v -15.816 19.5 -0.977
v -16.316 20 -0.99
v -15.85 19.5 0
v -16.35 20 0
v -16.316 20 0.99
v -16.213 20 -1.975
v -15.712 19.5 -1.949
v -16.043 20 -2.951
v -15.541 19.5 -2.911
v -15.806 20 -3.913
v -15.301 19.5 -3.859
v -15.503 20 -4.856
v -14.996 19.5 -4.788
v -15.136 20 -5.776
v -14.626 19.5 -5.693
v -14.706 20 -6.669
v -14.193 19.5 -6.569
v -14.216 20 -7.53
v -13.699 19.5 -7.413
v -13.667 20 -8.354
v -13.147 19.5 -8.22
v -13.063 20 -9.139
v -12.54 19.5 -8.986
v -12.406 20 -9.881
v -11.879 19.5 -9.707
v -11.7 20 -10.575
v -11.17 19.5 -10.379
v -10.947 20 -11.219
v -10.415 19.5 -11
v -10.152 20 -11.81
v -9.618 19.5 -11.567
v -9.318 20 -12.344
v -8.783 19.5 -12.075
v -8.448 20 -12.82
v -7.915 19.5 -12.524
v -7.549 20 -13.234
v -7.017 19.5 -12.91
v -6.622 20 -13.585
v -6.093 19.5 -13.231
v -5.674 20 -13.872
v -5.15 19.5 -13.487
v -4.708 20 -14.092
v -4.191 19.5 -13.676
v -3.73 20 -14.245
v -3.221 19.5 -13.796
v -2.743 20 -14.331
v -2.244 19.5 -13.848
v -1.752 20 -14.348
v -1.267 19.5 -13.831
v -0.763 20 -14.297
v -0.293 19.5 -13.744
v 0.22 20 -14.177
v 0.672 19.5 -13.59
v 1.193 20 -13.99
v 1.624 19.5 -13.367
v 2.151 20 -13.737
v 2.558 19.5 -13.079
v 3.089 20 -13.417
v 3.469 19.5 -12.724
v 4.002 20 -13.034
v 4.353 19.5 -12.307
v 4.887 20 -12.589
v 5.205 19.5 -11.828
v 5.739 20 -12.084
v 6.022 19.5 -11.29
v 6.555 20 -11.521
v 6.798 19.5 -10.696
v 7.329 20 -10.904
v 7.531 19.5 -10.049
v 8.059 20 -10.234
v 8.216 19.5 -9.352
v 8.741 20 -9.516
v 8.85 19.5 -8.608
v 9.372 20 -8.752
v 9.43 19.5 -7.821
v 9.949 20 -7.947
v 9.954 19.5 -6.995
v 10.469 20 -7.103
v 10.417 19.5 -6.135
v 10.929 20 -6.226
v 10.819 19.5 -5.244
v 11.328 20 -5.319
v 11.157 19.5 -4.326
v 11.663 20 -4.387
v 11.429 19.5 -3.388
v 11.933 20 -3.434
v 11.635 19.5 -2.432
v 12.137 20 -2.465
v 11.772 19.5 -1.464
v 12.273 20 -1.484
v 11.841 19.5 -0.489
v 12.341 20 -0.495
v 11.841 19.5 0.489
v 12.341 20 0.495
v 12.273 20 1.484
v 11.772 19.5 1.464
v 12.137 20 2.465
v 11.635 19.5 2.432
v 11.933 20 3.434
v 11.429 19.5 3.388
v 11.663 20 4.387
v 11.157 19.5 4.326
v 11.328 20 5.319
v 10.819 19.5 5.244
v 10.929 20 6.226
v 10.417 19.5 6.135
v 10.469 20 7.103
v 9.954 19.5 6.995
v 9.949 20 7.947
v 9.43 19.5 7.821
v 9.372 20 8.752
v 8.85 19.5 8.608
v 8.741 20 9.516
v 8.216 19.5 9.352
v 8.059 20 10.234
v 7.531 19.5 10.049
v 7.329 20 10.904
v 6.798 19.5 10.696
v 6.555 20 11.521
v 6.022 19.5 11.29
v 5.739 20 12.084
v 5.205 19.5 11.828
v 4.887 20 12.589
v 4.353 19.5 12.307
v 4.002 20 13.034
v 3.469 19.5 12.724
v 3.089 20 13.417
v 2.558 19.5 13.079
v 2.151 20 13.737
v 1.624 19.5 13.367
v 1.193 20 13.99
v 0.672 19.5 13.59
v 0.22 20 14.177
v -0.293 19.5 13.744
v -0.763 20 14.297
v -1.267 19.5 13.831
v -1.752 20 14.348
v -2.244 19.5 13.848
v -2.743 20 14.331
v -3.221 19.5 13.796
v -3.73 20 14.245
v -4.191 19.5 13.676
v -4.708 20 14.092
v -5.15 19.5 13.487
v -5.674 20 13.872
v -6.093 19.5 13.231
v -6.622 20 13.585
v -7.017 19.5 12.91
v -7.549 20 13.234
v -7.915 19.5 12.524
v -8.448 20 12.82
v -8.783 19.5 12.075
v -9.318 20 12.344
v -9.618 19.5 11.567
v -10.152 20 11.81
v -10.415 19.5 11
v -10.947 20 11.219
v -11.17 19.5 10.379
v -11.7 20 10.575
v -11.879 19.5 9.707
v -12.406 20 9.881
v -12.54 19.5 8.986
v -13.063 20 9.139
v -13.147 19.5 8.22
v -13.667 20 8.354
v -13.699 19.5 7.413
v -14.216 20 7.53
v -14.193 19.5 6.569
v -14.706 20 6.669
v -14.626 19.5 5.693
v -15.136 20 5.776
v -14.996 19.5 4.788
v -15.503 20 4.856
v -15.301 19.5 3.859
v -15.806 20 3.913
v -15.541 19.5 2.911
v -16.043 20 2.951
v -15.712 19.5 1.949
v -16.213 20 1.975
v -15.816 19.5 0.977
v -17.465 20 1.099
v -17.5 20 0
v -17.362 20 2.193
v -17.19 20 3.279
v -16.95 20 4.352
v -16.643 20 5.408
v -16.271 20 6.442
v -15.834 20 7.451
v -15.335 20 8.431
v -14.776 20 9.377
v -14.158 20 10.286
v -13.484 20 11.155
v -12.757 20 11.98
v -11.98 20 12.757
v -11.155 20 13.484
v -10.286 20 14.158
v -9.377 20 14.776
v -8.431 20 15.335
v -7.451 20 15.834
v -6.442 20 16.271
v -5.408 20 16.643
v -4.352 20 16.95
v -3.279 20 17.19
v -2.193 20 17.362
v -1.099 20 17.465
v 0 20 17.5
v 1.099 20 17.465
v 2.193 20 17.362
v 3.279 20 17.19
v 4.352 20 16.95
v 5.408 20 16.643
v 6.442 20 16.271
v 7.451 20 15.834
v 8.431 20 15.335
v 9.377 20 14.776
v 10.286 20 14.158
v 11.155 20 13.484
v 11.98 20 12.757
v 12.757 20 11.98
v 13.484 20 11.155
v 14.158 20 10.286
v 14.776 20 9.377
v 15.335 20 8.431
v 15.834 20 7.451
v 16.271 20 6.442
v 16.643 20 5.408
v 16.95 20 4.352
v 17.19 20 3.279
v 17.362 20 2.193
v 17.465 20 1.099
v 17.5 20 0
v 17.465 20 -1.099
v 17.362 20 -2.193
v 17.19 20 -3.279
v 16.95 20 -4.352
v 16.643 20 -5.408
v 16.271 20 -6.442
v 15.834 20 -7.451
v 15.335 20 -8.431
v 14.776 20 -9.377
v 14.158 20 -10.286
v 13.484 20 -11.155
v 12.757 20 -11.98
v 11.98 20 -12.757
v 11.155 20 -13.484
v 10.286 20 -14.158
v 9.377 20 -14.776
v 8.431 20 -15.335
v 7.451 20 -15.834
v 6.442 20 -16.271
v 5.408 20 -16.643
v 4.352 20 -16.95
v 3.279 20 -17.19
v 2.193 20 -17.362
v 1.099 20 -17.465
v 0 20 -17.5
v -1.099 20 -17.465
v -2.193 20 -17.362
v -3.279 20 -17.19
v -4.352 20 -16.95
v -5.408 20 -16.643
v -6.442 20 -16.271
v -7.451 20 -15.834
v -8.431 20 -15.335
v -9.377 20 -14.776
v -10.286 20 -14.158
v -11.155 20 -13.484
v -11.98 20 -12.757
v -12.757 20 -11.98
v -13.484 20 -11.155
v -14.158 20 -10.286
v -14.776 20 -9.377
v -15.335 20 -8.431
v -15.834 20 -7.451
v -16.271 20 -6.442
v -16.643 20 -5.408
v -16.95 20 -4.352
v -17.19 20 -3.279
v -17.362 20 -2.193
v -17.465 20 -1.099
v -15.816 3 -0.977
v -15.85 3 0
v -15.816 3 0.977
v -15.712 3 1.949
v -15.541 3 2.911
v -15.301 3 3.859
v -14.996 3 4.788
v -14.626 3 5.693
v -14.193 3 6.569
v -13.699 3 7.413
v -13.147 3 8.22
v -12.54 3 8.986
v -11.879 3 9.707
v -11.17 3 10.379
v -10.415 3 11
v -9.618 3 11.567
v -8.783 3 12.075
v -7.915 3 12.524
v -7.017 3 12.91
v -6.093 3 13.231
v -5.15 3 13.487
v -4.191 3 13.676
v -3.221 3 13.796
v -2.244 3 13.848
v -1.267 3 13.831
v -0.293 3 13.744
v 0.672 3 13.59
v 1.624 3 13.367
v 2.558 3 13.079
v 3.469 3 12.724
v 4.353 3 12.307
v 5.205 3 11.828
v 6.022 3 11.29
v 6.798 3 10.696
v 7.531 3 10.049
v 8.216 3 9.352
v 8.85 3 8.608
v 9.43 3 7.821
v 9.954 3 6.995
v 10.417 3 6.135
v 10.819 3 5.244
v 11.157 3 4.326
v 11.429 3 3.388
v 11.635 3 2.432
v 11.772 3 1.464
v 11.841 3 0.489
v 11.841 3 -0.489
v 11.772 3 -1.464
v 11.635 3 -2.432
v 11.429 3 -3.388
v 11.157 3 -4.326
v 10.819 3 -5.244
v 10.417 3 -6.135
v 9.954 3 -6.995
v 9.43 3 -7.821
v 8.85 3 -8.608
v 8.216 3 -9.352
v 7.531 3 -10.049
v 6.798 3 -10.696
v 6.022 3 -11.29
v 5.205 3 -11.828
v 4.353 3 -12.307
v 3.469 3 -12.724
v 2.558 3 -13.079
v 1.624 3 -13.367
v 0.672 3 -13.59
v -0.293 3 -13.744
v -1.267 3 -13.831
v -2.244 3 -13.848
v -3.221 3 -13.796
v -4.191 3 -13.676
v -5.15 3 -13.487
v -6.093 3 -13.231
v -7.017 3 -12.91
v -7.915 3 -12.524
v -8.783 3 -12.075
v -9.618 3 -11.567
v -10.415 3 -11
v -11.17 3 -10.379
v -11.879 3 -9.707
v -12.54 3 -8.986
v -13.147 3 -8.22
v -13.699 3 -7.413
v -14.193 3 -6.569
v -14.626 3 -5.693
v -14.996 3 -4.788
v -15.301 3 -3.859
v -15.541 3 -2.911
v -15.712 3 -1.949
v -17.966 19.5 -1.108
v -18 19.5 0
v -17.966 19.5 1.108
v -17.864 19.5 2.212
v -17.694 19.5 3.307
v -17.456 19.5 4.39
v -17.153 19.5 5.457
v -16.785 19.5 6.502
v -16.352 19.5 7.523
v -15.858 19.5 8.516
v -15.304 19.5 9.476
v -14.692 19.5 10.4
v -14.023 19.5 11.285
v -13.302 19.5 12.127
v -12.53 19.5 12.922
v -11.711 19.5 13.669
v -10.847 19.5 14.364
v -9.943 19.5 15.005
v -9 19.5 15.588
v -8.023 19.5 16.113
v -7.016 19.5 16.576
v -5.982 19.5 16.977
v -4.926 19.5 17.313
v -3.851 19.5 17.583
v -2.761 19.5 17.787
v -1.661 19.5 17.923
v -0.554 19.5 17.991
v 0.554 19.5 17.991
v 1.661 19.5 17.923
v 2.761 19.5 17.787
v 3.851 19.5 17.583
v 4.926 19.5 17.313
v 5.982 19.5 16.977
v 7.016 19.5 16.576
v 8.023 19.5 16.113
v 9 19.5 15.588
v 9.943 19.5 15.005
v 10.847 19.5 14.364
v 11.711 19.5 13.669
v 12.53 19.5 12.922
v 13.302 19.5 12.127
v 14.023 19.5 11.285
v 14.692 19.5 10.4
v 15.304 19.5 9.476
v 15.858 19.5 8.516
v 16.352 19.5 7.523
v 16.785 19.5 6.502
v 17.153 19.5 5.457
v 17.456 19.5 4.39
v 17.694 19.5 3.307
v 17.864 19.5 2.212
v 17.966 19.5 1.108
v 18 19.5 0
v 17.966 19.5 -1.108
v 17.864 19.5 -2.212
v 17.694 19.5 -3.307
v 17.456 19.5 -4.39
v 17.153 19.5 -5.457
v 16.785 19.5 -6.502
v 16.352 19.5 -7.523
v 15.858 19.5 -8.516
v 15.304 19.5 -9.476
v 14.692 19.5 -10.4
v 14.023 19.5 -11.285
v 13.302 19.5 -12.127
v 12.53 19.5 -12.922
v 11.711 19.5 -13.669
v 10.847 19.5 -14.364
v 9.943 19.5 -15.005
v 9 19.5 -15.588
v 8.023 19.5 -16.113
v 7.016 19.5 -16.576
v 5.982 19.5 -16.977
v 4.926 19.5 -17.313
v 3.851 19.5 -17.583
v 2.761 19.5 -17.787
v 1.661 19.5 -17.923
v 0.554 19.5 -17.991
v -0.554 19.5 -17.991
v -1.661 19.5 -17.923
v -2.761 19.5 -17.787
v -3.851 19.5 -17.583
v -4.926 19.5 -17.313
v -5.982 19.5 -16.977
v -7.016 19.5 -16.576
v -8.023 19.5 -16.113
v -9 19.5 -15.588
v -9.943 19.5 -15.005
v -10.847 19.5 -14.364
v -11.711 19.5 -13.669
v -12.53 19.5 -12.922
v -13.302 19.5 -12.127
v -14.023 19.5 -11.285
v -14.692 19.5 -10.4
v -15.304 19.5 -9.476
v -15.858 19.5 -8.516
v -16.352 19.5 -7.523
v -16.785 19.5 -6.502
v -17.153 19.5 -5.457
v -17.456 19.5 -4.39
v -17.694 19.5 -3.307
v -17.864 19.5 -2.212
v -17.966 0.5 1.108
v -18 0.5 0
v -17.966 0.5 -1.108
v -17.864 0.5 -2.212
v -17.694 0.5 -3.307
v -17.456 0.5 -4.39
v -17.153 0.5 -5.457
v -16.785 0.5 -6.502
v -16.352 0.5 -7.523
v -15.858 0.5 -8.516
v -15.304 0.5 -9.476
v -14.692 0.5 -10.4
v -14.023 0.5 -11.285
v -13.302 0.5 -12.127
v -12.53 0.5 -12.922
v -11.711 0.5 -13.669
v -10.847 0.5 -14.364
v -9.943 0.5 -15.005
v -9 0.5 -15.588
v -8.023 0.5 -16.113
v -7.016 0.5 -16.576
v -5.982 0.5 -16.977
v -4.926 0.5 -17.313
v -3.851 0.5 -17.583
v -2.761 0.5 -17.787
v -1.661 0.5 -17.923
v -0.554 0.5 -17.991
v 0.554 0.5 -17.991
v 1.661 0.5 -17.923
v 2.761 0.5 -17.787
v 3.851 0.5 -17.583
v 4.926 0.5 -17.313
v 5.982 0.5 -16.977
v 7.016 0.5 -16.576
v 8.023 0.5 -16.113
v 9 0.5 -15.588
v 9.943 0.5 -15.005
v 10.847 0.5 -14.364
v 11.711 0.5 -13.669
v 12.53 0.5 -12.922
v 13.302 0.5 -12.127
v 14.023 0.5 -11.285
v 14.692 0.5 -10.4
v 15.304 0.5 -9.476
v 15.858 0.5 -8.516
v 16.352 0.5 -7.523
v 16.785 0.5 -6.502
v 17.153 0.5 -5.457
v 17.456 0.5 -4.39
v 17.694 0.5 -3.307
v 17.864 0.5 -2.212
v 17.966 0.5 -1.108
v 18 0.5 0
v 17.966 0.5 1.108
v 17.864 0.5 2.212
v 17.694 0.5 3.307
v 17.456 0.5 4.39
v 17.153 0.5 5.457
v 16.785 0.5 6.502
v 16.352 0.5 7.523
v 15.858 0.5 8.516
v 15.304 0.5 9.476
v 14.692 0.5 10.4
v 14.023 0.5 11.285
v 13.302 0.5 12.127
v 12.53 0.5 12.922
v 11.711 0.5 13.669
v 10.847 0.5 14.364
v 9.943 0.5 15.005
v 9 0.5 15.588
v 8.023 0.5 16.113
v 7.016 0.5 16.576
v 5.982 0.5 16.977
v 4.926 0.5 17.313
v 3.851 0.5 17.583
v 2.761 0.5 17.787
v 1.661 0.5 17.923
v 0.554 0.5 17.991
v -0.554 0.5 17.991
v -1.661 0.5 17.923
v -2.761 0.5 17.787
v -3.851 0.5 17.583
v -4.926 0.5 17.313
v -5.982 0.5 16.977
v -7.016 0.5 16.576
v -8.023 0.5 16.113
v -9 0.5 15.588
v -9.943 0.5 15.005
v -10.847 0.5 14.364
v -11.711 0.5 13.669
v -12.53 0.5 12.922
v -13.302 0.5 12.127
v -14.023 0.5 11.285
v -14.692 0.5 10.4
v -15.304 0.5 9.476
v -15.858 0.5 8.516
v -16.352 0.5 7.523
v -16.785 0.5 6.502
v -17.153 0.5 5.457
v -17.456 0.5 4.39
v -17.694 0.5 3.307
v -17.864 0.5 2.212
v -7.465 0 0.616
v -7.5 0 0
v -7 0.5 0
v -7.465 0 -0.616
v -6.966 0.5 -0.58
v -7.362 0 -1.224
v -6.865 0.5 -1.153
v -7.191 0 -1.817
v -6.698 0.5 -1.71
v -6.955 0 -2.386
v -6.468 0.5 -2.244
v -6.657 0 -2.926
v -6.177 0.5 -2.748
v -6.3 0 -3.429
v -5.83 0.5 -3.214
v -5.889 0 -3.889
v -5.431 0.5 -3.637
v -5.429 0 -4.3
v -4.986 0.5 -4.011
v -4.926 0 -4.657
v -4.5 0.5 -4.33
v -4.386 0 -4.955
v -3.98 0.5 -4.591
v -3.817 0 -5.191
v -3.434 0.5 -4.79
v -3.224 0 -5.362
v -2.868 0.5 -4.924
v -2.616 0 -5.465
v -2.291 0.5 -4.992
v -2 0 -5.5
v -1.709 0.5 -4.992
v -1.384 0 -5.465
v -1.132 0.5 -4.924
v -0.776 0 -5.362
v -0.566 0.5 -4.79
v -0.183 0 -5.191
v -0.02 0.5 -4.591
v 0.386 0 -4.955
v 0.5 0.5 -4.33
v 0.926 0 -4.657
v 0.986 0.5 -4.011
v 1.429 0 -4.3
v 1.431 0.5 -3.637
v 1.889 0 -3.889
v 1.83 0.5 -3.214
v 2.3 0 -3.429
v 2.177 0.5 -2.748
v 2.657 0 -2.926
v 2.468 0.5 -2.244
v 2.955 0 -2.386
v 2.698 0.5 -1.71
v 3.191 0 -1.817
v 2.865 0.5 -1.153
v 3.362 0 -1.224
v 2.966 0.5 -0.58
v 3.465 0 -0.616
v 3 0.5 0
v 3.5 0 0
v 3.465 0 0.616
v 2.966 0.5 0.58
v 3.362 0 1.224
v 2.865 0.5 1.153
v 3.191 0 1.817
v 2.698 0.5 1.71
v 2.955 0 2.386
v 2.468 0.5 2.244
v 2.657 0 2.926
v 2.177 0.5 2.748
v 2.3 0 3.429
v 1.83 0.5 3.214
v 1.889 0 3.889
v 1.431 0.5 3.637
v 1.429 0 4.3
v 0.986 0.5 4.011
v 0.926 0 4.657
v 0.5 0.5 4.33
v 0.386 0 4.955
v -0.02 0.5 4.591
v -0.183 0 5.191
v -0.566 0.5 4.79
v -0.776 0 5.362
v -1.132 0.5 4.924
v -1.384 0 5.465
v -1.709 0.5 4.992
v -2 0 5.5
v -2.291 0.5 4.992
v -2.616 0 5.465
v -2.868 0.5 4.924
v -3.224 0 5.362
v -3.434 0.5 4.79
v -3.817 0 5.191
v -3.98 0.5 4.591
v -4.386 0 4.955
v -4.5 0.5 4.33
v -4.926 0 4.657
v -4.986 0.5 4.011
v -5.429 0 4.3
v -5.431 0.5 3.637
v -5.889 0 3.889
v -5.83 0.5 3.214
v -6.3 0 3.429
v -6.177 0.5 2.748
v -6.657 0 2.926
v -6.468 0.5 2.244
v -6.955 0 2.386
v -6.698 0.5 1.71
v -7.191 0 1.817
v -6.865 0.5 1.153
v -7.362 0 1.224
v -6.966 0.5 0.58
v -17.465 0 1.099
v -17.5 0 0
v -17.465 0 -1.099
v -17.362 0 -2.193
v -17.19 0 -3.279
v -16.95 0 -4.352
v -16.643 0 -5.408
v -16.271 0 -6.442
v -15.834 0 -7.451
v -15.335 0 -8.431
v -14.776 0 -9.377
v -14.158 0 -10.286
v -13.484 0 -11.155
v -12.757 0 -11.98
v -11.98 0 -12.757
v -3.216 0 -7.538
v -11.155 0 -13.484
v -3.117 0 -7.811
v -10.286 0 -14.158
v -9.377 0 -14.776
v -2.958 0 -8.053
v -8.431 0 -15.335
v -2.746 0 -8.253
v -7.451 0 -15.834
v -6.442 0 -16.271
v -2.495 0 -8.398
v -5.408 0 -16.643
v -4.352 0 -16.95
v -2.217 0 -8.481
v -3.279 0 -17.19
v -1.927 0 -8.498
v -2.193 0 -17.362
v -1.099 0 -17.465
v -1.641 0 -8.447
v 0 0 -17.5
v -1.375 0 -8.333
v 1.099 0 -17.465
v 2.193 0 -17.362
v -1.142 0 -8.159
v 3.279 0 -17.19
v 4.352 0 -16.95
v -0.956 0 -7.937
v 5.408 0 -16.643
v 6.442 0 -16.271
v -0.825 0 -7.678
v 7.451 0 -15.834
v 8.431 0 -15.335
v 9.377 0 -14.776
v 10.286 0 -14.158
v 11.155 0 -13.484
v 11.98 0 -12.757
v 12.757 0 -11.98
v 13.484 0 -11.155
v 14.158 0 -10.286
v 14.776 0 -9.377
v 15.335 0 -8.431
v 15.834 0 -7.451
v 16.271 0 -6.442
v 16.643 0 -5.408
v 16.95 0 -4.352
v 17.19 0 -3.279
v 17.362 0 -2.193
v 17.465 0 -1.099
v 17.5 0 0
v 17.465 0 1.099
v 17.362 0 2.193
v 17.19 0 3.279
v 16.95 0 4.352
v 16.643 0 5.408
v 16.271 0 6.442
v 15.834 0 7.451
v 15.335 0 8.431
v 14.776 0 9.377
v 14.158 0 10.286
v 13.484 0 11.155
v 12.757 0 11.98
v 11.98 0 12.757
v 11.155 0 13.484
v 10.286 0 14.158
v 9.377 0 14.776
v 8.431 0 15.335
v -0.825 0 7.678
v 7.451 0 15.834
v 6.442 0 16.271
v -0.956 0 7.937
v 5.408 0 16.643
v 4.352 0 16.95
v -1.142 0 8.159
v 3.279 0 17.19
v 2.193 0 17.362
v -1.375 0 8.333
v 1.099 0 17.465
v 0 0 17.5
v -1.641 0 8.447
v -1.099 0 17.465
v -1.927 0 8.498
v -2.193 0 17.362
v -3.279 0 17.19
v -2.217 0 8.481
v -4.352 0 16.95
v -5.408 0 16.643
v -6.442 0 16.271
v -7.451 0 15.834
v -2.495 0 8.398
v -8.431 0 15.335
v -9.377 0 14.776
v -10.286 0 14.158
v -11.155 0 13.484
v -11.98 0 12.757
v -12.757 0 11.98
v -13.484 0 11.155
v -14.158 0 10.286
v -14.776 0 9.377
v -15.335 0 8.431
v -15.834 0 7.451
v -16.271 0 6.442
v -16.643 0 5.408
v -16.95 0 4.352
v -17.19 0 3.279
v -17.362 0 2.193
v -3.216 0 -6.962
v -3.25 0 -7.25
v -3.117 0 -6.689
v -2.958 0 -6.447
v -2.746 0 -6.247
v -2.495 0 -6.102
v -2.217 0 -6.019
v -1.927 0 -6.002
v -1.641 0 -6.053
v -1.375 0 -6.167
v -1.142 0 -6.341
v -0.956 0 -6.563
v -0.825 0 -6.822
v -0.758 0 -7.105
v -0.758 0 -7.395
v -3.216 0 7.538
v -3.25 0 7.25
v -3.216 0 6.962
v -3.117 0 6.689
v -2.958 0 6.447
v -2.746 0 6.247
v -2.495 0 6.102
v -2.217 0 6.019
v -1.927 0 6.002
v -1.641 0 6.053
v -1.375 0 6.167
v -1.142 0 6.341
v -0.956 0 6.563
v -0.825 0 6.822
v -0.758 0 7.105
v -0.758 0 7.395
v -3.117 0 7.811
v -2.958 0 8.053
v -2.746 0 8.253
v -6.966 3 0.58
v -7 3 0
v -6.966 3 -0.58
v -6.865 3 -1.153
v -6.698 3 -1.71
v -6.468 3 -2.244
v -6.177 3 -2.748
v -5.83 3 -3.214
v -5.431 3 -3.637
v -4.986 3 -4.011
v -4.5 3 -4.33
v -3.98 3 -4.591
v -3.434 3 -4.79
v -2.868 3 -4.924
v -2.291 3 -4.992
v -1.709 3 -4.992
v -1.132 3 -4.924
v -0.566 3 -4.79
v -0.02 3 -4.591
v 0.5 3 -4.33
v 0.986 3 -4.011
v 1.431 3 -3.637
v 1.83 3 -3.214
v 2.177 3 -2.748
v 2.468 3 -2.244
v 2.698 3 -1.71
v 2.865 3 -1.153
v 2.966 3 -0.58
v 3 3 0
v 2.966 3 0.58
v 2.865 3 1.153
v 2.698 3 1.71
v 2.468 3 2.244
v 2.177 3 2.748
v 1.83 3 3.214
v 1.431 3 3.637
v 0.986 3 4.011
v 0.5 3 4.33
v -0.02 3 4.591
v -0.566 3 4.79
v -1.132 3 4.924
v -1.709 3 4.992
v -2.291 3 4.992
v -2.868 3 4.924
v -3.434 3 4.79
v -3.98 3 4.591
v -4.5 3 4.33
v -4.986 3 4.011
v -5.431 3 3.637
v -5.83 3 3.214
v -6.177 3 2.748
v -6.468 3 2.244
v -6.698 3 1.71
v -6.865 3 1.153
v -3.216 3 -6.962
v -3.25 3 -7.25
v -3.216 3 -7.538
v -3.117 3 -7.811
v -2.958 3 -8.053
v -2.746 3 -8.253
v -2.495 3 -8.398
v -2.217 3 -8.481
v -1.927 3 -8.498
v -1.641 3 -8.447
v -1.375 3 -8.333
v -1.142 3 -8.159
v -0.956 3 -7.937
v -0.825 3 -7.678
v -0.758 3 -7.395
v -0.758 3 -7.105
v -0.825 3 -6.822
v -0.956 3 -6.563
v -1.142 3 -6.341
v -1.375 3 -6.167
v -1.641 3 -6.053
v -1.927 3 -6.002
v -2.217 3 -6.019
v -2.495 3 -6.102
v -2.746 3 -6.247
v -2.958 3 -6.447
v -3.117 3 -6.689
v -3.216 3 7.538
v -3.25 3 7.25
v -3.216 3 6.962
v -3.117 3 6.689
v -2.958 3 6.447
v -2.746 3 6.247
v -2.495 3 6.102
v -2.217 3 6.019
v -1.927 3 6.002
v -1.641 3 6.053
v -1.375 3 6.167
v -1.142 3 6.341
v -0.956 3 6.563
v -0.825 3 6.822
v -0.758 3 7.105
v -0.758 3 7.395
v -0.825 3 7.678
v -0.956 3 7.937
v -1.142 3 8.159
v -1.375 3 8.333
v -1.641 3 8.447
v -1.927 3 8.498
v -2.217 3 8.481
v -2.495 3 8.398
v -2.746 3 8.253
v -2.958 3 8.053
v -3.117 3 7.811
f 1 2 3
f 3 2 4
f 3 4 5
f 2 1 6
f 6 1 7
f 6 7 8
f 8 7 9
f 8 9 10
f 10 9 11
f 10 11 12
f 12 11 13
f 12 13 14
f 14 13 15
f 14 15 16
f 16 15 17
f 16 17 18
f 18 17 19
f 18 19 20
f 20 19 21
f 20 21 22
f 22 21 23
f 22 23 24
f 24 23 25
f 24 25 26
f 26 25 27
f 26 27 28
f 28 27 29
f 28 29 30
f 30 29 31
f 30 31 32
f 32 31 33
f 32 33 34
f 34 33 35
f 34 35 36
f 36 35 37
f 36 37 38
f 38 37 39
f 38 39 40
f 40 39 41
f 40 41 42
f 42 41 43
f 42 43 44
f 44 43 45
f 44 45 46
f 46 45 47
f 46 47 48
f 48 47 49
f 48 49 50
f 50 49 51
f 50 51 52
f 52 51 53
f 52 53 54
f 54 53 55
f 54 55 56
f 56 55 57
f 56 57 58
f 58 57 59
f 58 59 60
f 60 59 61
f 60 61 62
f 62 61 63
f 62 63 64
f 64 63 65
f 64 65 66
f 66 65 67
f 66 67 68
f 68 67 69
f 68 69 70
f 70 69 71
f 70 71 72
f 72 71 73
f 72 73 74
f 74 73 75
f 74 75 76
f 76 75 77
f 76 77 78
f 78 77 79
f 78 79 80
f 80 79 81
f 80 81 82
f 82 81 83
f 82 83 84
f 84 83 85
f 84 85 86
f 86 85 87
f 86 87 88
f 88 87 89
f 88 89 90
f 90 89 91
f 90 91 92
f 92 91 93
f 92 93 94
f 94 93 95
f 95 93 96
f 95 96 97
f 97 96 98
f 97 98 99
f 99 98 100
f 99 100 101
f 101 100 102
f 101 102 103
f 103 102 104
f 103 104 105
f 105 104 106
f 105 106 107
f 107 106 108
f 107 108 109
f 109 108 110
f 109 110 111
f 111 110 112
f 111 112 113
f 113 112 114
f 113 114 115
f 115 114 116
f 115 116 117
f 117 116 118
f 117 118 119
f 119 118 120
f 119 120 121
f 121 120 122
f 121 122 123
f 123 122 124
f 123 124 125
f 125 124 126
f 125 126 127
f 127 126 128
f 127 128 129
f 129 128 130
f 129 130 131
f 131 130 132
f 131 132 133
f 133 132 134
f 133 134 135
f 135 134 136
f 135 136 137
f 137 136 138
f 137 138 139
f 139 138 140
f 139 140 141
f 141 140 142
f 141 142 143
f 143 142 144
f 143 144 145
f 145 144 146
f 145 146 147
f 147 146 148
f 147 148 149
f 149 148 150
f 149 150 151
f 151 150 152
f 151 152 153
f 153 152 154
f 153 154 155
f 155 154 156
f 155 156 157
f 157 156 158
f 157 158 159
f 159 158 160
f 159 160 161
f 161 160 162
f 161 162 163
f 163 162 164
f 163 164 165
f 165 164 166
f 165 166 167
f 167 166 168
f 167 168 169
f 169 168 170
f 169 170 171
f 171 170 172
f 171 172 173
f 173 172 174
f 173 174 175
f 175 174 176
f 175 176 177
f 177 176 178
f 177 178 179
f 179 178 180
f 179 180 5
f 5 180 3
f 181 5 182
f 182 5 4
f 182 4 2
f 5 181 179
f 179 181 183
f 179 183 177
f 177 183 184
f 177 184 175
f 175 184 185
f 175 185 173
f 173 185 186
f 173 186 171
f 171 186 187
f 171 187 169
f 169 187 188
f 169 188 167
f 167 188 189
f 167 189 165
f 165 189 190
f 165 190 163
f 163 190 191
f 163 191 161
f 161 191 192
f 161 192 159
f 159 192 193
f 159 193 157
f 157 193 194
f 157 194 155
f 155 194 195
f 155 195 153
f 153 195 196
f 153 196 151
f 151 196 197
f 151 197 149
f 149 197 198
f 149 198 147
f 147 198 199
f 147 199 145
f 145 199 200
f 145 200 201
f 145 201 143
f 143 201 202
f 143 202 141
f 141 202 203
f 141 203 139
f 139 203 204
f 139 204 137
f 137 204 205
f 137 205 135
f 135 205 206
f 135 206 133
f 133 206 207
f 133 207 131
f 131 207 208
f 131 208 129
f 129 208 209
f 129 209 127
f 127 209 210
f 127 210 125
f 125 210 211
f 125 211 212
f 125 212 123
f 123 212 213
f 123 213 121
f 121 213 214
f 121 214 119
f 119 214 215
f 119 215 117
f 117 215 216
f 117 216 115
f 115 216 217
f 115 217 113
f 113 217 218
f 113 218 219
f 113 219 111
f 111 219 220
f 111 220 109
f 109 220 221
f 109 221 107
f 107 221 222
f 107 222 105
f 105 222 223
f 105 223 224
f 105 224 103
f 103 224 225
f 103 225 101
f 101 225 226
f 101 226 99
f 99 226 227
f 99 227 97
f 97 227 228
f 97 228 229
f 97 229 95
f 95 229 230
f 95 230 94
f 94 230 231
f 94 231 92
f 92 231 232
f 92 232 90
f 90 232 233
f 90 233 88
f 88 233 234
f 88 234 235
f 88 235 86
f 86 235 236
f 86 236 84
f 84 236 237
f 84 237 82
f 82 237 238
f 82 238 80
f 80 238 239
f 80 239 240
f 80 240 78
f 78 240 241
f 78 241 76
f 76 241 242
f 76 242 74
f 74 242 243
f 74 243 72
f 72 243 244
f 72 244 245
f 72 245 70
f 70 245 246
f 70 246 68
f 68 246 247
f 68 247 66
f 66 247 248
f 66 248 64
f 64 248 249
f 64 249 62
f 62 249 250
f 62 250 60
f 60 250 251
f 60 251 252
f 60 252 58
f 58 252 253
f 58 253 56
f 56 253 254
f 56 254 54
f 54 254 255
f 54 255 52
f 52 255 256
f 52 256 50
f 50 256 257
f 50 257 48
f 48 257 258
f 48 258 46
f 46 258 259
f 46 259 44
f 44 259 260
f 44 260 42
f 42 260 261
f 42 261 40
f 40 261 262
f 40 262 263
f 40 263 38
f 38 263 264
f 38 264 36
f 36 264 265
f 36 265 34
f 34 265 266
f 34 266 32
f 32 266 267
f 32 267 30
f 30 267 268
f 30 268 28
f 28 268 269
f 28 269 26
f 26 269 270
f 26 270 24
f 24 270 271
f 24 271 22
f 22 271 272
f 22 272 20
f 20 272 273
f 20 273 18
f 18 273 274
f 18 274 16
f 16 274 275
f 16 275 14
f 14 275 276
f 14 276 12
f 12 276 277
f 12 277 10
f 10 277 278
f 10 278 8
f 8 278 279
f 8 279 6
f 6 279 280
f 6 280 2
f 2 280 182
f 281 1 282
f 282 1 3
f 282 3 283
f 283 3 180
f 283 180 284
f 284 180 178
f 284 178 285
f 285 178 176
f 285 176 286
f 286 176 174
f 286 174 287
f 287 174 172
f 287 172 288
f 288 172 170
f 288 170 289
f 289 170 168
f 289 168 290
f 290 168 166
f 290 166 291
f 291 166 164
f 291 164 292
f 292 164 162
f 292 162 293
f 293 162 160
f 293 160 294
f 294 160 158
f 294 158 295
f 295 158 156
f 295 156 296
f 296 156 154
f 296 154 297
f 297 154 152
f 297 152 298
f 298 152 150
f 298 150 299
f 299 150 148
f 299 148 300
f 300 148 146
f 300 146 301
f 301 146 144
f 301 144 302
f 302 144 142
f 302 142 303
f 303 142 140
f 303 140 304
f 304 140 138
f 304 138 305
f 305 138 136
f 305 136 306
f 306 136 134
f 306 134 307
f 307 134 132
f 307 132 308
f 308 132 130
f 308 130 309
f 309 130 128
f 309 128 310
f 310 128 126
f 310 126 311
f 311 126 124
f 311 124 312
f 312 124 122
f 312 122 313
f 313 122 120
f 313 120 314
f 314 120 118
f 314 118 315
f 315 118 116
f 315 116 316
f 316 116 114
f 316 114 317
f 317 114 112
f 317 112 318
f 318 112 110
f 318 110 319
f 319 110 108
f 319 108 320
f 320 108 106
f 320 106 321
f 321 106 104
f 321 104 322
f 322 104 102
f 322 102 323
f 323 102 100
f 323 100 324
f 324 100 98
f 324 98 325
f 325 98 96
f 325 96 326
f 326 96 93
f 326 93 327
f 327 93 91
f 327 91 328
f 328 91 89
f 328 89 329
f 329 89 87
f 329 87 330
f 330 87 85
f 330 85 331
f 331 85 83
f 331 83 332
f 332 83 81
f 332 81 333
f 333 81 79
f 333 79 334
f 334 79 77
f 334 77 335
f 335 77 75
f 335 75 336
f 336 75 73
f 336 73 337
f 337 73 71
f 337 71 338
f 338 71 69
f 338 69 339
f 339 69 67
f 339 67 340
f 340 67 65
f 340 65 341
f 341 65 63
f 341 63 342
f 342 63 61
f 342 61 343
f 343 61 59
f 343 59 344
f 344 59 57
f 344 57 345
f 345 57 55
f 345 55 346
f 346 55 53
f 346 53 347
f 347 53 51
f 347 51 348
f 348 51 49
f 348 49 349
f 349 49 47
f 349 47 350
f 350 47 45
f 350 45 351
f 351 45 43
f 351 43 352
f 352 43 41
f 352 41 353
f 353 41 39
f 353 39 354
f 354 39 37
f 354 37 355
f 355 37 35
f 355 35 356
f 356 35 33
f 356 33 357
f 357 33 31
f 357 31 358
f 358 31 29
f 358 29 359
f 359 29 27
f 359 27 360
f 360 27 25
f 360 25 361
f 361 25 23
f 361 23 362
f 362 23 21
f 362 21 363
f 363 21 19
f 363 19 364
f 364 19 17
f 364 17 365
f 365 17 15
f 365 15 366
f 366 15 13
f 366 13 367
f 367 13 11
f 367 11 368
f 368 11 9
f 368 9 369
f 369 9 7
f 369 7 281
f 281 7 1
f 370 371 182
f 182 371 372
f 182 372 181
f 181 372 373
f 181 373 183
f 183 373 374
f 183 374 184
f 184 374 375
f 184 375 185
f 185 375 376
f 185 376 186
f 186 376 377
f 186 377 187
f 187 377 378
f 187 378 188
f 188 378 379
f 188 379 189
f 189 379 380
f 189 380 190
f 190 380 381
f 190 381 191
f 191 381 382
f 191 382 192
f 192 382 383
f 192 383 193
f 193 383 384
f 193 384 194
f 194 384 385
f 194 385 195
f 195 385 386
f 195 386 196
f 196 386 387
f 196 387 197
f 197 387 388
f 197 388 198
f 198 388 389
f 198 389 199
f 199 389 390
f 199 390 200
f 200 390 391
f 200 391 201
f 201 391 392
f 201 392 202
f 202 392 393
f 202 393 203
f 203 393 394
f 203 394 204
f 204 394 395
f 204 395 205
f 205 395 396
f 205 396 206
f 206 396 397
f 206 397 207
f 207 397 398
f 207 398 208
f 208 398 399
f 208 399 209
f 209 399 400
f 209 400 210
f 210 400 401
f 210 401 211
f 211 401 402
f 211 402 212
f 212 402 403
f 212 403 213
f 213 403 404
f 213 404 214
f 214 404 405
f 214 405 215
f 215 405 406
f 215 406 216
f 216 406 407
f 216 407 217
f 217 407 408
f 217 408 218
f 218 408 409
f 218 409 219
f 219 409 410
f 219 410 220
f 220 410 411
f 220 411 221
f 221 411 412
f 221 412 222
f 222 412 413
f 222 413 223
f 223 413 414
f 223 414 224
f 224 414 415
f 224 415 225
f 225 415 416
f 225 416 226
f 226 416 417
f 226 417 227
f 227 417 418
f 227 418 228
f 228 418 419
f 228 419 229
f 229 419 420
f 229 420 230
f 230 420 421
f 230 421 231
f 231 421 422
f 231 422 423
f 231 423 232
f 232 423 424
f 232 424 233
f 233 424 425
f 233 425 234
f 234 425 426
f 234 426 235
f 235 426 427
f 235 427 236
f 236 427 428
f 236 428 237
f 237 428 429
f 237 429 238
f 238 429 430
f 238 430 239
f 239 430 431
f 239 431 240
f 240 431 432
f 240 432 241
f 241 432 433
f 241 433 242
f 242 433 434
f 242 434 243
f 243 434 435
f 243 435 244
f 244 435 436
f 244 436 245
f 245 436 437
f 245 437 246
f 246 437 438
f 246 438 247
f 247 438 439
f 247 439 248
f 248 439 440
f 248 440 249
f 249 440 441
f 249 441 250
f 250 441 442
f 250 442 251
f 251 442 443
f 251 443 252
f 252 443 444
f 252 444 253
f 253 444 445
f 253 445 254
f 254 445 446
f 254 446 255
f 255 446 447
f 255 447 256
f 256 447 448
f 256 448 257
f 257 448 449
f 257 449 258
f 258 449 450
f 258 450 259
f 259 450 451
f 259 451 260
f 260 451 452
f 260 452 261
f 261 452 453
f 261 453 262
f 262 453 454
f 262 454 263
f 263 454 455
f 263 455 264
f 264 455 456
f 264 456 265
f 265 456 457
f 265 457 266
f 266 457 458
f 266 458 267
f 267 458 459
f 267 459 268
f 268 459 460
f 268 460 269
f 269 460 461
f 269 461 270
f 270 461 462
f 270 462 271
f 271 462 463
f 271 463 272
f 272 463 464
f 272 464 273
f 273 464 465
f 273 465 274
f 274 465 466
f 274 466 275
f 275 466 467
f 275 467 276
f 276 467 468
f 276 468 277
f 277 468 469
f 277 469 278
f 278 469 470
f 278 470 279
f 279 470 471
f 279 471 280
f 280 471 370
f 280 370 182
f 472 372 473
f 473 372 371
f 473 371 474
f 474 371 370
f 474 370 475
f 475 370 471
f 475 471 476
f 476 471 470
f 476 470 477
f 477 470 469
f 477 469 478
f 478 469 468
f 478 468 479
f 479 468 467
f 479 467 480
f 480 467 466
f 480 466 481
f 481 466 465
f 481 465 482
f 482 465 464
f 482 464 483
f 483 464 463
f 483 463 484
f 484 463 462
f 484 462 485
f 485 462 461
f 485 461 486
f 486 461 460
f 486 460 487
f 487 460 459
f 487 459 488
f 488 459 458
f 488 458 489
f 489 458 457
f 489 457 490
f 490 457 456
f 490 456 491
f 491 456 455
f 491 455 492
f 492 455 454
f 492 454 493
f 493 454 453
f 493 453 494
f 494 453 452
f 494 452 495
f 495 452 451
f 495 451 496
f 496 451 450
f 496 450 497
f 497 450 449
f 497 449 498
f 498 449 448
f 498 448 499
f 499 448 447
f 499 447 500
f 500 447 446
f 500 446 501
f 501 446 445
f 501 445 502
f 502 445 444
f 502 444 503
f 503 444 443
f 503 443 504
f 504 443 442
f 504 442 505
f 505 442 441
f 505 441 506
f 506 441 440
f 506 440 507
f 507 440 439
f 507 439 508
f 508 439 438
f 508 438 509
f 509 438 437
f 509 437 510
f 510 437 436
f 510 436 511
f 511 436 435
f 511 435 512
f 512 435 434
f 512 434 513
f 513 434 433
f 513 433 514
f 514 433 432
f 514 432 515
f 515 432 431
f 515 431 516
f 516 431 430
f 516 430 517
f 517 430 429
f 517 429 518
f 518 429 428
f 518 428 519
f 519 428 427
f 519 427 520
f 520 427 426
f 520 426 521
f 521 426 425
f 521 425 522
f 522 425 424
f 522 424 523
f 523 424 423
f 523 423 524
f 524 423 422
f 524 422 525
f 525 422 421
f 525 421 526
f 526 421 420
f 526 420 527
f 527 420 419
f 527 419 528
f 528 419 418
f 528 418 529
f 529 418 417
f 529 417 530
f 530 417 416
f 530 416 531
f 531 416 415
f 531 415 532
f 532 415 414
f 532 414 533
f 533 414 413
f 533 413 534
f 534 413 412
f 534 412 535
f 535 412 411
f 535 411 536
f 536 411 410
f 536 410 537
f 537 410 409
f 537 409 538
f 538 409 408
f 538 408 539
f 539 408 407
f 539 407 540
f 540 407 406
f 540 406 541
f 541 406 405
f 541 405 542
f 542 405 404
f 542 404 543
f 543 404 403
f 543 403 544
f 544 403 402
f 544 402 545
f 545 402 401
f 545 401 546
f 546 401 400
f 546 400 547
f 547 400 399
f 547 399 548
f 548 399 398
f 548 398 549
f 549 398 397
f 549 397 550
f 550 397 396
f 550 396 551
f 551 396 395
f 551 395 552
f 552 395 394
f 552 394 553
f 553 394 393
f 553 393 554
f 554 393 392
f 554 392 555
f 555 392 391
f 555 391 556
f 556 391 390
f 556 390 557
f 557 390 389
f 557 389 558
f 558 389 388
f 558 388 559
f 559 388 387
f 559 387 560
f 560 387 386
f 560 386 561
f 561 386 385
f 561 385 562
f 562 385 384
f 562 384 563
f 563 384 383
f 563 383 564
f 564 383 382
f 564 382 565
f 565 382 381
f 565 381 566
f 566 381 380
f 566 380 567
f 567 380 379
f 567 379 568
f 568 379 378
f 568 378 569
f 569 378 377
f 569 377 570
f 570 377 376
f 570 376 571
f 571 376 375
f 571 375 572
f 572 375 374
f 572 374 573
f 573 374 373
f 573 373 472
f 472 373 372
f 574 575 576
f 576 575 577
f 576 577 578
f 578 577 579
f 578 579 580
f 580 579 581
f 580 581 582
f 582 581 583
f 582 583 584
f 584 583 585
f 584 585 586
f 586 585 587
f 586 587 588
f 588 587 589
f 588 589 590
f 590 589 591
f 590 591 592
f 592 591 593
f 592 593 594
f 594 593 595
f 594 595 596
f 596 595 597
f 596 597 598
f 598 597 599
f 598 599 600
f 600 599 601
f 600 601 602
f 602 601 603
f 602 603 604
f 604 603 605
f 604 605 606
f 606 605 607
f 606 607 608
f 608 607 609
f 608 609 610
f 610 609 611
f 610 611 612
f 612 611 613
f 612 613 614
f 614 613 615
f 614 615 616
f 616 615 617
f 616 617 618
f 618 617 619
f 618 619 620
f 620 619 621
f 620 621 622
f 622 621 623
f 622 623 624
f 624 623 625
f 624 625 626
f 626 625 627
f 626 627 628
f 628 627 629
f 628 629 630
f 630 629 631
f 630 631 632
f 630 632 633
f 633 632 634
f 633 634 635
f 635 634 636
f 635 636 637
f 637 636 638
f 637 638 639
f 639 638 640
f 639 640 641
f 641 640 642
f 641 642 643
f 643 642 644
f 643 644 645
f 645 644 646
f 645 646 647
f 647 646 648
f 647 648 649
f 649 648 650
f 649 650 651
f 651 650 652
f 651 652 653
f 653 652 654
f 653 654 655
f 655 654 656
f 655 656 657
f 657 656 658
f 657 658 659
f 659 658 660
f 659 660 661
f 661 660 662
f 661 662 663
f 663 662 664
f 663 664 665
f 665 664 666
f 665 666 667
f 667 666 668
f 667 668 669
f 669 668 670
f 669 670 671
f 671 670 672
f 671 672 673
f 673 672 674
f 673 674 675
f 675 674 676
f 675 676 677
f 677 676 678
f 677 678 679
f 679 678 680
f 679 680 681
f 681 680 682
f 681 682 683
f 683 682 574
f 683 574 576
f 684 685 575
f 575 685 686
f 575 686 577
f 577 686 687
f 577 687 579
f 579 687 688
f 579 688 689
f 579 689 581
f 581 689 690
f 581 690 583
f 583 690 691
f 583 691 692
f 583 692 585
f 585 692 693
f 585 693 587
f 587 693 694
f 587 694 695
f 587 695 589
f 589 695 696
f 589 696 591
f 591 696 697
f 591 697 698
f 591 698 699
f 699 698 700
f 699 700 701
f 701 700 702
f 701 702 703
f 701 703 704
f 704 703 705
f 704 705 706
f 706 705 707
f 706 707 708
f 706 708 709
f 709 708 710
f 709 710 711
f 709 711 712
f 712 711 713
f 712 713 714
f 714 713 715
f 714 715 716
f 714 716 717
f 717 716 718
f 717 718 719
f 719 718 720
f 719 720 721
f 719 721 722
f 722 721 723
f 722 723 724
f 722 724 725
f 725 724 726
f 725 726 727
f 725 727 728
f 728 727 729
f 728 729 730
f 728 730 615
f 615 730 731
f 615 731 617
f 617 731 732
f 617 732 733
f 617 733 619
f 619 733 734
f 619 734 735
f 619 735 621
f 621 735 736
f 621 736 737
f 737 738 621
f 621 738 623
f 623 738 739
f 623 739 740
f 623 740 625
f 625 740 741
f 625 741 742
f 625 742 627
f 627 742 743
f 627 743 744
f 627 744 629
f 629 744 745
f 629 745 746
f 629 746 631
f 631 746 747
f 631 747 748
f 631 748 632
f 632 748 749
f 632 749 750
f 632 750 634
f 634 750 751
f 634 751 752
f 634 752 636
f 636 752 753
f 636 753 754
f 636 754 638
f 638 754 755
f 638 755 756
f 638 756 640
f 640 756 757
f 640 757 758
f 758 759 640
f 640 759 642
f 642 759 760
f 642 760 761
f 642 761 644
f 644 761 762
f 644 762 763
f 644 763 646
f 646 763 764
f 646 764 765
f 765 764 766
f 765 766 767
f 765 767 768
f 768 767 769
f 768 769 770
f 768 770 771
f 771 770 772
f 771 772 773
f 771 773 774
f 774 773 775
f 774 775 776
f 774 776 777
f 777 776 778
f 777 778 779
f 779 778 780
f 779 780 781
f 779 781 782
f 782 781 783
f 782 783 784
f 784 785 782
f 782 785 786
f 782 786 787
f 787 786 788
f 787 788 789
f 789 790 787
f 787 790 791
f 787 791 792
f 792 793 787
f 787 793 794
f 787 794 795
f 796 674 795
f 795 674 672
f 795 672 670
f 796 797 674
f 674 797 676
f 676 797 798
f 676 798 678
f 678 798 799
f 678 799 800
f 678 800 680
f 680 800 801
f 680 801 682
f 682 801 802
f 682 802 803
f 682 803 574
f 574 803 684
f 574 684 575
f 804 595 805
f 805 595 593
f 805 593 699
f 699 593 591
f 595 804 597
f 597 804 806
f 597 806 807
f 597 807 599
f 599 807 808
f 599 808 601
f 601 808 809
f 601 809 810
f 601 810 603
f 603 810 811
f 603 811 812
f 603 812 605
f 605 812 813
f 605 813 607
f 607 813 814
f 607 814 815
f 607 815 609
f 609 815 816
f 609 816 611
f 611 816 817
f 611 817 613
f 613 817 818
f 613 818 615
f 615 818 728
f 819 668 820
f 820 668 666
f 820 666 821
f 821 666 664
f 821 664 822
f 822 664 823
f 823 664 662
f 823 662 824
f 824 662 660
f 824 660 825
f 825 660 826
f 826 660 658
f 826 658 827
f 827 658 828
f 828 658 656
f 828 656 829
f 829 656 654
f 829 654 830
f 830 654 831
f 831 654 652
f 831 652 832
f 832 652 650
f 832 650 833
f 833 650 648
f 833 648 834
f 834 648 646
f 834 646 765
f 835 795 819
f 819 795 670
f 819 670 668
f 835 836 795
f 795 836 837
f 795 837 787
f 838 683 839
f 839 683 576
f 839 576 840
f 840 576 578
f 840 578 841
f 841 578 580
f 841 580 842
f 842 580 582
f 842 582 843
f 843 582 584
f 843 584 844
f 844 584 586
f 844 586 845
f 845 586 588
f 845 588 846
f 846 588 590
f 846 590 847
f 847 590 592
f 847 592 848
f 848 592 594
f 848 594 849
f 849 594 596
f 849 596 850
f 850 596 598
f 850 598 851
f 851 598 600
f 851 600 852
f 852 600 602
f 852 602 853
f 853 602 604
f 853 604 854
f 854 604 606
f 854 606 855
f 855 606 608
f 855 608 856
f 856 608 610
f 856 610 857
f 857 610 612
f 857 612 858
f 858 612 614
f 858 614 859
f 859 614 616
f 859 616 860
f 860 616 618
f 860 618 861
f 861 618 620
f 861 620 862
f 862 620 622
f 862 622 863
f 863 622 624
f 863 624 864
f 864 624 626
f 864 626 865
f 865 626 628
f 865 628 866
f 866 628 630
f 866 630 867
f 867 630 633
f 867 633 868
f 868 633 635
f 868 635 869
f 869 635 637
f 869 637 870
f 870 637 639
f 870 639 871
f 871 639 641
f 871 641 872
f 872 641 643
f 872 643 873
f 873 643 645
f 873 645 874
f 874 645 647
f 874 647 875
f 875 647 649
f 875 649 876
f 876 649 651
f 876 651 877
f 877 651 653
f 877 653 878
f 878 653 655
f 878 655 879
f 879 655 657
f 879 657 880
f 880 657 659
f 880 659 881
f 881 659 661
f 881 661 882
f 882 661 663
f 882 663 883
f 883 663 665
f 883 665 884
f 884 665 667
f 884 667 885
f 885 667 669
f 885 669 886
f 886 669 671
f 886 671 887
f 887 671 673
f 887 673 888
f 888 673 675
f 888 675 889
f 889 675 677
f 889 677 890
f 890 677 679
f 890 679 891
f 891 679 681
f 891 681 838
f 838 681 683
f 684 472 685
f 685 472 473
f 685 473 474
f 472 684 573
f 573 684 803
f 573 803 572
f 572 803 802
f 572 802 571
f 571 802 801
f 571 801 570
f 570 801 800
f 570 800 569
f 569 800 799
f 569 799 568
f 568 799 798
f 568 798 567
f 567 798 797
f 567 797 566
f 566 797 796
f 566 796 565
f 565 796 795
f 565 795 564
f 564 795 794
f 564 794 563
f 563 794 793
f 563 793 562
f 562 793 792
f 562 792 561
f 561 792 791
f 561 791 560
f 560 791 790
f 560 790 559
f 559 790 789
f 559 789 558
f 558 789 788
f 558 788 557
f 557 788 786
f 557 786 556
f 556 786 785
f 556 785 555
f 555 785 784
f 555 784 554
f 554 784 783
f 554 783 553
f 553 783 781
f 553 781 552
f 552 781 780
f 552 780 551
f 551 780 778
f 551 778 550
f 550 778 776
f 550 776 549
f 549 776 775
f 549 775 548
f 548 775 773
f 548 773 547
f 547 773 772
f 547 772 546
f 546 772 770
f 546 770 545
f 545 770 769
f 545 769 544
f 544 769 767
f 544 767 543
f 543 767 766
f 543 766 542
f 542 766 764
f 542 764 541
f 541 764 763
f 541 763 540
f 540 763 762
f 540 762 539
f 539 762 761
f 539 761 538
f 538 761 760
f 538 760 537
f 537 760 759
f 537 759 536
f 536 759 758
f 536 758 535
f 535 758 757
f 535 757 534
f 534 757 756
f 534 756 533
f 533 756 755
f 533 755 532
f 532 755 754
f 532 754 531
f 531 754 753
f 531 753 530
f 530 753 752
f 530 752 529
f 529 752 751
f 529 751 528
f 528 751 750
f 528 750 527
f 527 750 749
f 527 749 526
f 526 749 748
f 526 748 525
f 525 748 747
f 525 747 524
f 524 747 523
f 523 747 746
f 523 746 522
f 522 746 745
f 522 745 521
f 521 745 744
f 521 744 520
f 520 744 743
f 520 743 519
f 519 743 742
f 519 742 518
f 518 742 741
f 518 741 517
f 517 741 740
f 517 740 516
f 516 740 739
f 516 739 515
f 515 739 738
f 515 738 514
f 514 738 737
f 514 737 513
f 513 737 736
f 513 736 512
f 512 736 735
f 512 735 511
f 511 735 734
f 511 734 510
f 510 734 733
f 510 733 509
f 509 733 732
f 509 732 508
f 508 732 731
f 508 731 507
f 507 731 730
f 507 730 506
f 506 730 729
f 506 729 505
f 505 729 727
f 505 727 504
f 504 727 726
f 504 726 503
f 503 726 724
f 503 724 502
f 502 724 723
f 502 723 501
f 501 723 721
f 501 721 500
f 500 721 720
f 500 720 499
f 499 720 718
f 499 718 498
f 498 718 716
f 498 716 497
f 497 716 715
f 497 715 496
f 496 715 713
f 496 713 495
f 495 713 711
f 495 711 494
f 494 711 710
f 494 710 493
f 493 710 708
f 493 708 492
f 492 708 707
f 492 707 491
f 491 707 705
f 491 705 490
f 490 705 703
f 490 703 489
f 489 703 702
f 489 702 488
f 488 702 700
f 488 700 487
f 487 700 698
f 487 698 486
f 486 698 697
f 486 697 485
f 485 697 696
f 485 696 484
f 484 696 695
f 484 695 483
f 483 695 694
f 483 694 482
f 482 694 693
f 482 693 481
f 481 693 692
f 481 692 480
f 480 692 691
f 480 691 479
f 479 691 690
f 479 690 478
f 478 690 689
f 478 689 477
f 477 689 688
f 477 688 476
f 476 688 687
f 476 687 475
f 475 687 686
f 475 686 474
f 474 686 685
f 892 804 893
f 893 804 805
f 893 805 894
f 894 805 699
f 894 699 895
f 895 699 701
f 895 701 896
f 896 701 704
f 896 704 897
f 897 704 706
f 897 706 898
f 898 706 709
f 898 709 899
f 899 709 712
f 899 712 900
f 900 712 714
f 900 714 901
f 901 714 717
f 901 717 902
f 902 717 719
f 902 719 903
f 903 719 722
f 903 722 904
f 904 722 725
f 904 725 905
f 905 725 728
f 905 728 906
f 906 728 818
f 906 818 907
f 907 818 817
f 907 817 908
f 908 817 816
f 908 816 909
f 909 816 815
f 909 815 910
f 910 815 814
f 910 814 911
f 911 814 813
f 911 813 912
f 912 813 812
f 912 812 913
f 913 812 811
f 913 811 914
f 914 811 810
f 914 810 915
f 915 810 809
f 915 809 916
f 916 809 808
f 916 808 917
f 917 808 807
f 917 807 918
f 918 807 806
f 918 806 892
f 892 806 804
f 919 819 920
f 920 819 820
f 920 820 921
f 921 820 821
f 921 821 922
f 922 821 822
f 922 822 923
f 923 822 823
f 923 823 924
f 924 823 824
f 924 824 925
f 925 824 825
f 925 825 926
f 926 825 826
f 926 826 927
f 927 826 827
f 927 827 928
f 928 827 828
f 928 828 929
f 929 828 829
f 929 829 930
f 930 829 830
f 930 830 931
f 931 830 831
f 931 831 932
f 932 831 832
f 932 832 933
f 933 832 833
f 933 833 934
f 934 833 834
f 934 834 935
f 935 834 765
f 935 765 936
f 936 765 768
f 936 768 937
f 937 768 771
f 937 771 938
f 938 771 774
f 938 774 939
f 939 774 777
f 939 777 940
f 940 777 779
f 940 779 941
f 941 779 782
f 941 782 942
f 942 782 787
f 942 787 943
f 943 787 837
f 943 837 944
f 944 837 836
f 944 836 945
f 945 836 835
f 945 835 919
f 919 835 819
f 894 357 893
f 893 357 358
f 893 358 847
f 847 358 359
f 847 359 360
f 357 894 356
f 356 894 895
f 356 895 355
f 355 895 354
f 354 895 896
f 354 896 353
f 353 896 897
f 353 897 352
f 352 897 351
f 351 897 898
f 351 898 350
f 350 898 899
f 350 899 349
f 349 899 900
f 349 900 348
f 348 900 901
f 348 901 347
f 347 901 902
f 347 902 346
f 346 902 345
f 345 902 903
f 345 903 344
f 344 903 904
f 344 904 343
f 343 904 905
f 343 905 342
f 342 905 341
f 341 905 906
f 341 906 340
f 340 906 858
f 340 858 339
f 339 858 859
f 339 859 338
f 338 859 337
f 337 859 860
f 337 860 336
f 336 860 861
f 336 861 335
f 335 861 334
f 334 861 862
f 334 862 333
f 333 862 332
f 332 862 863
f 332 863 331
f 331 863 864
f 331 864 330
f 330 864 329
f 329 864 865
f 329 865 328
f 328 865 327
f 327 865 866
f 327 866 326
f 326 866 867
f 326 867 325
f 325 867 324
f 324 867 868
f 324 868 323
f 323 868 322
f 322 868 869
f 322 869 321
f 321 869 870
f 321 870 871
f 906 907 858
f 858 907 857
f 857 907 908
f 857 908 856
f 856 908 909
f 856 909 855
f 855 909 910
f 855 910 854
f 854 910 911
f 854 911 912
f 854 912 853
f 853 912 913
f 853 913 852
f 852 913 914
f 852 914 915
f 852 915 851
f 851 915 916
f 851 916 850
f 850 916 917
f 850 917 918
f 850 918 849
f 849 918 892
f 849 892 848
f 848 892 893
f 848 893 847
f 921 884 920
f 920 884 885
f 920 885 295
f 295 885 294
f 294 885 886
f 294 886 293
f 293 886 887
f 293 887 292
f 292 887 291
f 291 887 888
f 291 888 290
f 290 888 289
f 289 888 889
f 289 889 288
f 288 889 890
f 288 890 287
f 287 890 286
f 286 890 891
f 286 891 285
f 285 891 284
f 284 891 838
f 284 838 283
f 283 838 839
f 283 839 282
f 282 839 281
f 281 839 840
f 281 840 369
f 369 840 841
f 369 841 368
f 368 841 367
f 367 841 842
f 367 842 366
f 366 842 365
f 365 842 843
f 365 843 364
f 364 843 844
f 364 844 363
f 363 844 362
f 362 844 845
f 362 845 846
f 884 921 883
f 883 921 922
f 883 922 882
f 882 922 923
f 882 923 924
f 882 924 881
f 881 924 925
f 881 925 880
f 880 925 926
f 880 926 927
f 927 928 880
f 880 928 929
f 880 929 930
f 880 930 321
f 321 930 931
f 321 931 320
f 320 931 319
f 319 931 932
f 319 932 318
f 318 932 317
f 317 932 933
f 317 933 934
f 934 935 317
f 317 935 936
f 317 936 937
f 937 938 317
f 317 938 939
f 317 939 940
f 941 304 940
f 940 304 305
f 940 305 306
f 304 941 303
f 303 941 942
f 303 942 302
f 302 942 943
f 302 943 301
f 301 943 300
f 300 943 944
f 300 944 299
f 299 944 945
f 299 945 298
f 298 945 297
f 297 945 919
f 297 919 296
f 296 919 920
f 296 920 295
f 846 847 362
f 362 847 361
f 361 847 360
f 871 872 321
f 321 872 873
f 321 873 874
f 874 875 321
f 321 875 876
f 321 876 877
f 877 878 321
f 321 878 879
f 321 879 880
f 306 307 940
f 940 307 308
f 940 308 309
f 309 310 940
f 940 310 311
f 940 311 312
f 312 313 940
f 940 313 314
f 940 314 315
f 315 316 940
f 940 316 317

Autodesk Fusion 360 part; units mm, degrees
sketch "スケッチ1" plane through (0, 0, 0) normal (0, 1, 0) x (1, 0, 0)
  circle A0 centre (0, 0) radius 18
  circle A1 centre (-2, 0) radius 13.85
  dimension "d5" = 27.7
extrude "押し出し2" add sketch "スケッチ1" along normal blind 20
sketch "スケッチ2" plane through (0, 0, 0) normal (0, 1, 0) x (1, 0, 0)
  circle A0 centre (-2, 0) radius 13.85
  circle A1 centre (-2, 0) radius 5
  dimension "d8" = 27.7
  dimension "d11" = 10
extrude "押し出し4" add sketch "スケッチ2" along normal blind 3
sketch "スケッチ3" plane through (0, 0, 0) normal (0, -1, 0) x (1, 0, 0)
  circle A0 centre (-2, 0) radius 5
  circle A1 centre (0, 0) radius 18
  circle A2 centre (-2, -7.25) radius 1.25
  line L0 (-2, 0) -> (-2, 7.25)
  circle A3 centre (-2, 7.25) radius 1.25
  point P0 (-2, 0)
  dimension "d14" = 7.25
  dimension "d15" = 2.5
  dimension "d16" = 7.25
  dimension "d17" = 2.5
extrude "押し出し5" cut sketch "スケッチ3" against normal blind 3 contours A3 | A2
chamfer "面取り1" distance 0.5 angle 45 2 edges at (-16.7819, 0, 6.5091) (-6.6616, 0, -1.8081)
chamfer "面取り2" distance 0.5 angle 45 2 edges at (-16.7819, 20, 6.5091) (-14.9127, 20, -5.0084)
sketch "スケッチ4" plane through (0, 0, 0) normal (0, 1, 0) x (1, 0, 0)
